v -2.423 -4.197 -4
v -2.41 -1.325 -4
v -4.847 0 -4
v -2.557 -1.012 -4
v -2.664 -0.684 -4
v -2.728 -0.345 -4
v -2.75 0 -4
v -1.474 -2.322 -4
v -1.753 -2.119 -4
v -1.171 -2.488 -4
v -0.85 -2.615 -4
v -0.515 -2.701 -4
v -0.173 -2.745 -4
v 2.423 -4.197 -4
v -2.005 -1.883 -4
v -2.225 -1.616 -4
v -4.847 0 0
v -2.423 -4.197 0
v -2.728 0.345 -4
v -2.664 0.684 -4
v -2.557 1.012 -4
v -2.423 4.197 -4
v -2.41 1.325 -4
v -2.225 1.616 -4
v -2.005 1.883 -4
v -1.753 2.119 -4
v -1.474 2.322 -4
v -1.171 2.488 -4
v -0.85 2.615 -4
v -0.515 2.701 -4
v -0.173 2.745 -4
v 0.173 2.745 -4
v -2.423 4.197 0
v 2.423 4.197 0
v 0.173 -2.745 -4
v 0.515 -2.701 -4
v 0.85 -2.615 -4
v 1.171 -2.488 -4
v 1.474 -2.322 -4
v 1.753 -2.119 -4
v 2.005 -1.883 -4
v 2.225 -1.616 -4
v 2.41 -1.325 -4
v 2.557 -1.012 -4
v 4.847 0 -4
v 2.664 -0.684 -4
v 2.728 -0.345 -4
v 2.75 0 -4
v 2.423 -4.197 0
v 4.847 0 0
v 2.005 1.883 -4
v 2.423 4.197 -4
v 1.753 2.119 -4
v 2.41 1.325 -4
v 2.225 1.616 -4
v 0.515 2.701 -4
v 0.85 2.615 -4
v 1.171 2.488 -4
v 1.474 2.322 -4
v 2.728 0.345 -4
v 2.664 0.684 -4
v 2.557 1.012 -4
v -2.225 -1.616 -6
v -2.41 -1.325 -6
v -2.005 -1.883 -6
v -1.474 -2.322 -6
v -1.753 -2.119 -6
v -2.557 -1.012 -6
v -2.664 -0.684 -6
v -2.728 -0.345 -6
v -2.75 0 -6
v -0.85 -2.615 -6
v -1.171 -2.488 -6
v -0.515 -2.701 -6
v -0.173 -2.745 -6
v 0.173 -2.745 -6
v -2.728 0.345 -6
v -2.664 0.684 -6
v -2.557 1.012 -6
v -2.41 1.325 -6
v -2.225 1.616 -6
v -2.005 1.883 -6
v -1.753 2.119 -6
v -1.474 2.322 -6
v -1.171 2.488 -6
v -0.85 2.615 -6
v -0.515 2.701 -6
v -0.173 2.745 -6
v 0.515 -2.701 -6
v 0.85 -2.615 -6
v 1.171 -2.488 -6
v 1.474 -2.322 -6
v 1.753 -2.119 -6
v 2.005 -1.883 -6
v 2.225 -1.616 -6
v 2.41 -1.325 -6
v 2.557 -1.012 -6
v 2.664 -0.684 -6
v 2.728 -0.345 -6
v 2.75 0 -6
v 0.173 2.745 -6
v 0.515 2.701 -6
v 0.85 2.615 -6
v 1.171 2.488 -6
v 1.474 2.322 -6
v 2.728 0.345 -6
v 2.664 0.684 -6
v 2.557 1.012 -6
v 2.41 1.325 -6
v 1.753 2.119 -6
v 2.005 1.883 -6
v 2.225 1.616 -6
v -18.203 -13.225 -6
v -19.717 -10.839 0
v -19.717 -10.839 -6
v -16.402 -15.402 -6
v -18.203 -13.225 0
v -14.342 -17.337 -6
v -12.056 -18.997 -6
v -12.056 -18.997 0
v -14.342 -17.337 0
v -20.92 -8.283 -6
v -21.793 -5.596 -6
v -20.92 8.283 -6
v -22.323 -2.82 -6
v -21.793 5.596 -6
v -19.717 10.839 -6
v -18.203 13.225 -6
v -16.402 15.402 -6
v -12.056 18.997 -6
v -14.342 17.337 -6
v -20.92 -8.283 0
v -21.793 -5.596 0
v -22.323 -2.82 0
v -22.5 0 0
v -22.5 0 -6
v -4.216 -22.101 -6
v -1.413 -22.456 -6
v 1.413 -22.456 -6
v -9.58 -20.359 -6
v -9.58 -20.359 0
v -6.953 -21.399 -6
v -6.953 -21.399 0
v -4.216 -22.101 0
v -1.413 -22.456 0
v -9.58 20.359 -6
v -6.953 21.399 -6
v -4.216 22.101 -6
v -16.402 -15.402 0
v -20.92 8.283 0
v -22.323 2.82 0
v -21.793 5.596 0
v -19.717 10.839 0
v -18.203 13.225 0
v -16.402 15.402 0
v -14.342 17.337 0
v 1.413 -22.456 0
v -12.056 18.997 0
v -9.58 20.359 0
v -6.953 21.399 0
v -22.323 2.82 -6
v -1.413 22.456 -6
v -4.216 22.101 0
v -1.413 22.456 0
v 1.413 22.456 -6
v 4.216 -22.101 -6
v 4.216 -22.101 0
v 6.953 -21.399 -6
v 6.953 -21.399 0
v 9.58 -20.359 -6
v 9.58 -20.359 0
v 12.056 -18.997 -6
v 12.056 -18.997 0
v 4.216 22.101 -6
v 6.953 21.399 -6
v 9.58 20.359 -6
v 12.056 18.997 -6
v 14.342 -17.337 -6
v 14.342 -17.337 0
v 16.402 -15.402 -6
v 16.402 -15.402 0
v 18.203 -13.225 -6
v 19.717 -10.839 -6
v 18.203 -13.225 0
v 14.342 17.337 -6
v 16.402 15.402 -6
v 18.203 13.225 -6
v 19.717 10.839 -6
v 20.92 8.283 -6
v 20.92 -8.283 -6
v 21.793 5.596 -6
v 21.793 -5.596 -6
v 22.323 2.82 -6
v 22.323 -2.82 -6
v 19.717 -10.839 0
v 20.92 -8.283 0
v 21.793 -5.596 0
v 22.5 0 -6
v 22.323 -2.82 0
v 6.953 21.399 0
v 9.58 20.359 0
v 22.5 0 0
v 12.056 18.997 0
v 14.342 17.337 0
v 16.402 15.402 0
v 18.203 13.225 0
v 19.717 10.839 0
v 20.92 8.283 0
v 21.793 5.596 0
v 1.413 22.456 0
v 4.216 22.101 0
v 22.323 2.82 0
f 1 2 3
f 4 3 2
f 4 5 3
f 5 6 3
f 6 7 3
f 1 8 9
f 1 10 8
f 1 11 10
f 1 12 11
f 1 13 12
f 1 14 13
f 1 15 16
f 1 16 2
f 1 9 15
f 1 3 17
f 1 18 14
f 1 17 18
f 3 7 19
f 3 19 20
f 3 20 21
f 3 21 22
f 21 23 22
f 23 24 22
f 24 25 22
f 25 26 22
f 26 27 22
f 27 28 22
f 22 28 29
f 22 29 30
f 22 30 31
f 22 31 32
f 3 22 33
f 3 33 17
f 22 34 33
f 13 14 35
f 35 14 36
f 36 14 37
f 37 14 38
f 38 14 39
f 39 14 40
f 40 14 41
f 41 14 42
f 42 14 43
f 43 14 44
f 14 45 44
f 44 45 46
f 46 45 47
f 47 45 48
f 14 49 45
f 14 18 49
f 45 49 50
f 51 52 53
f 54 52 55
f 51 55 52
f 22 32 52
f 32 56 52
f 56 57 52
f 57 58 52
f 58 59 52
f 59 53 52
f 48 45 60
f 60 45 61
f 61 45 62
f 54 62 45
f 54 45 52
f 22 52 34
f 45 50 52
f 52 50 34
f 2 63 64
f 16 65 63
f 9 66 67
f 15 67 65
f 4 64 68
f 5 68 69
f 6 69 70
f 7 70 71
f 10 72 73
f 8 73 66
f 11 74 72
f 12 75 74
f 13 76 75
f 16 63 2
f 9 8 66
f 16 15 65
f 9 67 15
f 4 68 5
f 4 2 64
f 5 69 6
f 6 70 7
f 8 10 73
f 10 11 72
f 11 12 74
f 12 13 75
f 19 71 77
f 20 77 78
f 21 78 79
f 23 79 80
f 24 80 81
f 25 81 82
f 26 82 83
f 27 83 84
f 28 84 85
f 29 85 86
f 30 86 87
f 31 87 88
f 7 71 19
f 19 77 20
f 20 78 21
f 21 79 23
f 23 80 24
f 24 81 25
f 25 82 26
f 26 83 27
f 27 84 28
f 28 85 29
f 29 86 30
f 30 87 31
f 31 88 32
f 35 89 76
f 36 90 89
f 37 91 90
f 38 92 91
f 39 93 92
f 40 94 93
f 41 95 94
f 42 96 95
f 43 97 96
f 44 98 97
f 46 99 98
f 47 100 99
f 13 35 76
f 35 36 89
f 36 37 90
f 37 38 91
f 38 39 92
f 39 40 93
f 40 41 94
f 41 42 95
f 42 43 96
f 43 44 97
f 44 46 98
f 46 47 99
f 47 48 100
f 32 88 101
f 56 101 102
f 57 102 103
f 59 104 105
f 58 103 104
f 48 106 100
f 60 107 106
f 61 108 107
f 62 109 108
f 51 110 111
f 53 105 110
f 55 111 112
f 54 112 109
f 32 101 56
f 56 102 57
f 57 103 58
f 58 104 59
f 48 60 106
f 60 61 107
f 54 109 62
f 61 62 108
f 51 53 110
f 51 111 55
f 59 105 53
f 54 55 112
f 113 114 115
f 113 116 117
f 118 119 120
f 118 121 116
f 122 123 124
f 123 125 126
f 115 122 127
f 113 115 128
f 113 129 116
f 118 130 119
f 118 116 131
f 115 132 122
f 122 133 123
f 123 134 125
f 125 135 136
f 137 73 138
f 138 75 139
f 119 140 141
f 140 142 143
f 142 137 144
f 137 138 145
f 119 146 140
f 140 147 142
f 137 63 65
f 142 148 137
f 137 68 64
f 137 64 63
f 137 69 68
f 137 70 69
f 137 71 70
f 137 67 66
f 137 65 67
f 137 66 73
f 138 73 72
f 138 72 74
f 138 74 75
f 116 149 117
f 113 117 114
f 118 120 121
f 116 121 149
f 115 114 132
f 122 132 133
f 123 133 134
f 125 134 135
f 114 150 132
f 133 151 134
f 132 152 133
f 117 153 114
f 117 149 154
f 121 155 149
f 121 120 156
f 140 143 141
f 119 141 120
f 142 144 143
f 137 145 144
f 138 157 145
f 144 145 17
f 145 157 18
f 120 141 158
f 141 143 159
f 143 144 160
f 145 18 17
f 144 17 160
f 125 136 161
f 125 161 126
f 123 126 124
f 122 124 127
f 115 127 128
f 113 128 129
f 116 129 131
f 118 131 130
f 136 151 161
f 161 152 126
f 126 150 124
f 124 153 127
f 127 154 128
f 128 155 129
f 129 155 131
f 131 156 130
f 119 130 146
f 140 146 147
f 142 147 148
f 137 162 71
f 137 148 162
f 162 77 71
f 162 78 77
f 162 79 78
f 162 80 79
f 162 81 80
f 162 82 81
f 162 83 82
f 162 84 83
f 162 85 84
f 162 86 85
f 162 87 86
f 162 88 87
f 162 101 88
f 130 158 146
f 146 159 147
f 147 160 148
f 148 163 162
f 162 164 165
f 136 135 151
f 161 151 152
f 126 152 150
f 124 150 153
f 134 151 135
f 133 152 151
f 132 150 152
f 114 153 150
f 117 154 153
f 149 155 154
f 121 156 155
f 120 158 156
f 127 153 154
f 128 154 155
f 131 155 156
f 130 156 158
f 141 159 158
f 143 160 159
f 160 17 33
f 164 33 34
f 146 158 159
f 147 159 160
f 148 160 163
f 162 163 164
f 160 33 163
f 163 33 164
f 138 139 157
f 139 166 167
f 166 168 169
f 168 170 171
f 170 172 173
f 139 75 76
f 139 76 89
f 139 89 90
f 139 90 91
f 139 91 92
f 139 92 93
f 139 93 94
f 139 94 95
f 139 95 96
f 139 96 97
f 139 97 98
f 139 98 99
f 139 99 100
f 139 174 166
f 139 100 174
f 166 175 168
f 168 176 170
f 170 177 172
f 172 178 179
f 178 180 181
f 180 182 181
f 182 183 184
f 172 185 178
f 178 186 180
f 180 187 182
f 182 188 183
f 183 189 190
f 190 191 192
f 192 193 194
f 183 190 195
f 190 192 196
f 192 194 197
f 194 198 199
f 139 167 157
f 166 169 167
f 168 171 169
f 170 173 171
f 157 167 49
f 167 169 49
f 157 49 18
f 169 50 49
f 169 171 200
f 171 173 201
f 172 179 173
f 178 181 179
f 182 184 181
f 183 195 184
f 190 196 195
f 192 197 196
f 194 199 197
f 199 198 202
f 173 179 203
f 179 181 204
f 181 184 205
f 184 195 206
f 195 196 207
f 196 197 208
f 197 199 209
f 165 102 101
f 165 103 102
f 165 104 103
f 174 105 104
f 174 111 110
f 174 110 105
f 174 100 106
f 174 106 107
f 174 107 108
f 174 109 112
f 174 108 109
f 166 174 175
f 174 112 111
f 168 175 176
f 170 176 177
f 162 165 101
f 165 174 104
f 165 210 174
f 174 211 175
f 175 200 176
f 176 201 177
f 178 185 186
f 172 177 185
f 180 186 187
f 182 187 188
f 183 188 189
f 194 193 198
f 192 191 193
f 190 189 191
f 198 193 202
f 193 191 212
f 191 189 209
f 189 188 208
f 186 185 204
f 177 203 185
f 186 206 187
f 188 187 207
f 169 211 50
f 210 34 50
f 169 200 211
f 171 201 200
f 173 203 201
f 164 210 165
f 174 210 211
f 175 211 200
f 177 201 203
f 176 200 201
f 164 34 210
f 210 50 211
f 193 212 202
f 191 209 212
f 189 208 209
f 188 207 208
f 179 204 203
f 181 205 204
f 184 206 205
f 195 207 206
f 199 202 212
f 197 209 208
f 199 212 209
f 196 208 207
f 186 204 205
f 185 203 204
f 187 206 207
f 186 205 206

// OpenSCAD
$fn = 50;

difference() {
	union() {
		translate(v = [0, 0, -6.0]) {
			cylinder(h = 6.0, r = 22.5);
		}
	}
	union() {
		translate(v = [0, 0, 0]) {
			rotate(a = [0, 0, 0]) {
				difference() {
					union() {
						translate(v = [0, 0, -4]) {
							linear_extrude(height = 4) {
								polygon(points = [[4.8468, 0.0], [2.4234000000000004, 4.197451927062417], [-2.423399999999999, 4.197451927062417], [-4.8468, 5.935618106107392e-16], [-2.423400000000002, -4.197451927062416], [2.423399999999997, -4.197451927062419]]);
							}
						}
					}
					union();
				}
			}
		}
		#translate(v = [0, 0, -100.0]) {
			cylinder(h = 200, r = 2.75);
		}
	}
}
